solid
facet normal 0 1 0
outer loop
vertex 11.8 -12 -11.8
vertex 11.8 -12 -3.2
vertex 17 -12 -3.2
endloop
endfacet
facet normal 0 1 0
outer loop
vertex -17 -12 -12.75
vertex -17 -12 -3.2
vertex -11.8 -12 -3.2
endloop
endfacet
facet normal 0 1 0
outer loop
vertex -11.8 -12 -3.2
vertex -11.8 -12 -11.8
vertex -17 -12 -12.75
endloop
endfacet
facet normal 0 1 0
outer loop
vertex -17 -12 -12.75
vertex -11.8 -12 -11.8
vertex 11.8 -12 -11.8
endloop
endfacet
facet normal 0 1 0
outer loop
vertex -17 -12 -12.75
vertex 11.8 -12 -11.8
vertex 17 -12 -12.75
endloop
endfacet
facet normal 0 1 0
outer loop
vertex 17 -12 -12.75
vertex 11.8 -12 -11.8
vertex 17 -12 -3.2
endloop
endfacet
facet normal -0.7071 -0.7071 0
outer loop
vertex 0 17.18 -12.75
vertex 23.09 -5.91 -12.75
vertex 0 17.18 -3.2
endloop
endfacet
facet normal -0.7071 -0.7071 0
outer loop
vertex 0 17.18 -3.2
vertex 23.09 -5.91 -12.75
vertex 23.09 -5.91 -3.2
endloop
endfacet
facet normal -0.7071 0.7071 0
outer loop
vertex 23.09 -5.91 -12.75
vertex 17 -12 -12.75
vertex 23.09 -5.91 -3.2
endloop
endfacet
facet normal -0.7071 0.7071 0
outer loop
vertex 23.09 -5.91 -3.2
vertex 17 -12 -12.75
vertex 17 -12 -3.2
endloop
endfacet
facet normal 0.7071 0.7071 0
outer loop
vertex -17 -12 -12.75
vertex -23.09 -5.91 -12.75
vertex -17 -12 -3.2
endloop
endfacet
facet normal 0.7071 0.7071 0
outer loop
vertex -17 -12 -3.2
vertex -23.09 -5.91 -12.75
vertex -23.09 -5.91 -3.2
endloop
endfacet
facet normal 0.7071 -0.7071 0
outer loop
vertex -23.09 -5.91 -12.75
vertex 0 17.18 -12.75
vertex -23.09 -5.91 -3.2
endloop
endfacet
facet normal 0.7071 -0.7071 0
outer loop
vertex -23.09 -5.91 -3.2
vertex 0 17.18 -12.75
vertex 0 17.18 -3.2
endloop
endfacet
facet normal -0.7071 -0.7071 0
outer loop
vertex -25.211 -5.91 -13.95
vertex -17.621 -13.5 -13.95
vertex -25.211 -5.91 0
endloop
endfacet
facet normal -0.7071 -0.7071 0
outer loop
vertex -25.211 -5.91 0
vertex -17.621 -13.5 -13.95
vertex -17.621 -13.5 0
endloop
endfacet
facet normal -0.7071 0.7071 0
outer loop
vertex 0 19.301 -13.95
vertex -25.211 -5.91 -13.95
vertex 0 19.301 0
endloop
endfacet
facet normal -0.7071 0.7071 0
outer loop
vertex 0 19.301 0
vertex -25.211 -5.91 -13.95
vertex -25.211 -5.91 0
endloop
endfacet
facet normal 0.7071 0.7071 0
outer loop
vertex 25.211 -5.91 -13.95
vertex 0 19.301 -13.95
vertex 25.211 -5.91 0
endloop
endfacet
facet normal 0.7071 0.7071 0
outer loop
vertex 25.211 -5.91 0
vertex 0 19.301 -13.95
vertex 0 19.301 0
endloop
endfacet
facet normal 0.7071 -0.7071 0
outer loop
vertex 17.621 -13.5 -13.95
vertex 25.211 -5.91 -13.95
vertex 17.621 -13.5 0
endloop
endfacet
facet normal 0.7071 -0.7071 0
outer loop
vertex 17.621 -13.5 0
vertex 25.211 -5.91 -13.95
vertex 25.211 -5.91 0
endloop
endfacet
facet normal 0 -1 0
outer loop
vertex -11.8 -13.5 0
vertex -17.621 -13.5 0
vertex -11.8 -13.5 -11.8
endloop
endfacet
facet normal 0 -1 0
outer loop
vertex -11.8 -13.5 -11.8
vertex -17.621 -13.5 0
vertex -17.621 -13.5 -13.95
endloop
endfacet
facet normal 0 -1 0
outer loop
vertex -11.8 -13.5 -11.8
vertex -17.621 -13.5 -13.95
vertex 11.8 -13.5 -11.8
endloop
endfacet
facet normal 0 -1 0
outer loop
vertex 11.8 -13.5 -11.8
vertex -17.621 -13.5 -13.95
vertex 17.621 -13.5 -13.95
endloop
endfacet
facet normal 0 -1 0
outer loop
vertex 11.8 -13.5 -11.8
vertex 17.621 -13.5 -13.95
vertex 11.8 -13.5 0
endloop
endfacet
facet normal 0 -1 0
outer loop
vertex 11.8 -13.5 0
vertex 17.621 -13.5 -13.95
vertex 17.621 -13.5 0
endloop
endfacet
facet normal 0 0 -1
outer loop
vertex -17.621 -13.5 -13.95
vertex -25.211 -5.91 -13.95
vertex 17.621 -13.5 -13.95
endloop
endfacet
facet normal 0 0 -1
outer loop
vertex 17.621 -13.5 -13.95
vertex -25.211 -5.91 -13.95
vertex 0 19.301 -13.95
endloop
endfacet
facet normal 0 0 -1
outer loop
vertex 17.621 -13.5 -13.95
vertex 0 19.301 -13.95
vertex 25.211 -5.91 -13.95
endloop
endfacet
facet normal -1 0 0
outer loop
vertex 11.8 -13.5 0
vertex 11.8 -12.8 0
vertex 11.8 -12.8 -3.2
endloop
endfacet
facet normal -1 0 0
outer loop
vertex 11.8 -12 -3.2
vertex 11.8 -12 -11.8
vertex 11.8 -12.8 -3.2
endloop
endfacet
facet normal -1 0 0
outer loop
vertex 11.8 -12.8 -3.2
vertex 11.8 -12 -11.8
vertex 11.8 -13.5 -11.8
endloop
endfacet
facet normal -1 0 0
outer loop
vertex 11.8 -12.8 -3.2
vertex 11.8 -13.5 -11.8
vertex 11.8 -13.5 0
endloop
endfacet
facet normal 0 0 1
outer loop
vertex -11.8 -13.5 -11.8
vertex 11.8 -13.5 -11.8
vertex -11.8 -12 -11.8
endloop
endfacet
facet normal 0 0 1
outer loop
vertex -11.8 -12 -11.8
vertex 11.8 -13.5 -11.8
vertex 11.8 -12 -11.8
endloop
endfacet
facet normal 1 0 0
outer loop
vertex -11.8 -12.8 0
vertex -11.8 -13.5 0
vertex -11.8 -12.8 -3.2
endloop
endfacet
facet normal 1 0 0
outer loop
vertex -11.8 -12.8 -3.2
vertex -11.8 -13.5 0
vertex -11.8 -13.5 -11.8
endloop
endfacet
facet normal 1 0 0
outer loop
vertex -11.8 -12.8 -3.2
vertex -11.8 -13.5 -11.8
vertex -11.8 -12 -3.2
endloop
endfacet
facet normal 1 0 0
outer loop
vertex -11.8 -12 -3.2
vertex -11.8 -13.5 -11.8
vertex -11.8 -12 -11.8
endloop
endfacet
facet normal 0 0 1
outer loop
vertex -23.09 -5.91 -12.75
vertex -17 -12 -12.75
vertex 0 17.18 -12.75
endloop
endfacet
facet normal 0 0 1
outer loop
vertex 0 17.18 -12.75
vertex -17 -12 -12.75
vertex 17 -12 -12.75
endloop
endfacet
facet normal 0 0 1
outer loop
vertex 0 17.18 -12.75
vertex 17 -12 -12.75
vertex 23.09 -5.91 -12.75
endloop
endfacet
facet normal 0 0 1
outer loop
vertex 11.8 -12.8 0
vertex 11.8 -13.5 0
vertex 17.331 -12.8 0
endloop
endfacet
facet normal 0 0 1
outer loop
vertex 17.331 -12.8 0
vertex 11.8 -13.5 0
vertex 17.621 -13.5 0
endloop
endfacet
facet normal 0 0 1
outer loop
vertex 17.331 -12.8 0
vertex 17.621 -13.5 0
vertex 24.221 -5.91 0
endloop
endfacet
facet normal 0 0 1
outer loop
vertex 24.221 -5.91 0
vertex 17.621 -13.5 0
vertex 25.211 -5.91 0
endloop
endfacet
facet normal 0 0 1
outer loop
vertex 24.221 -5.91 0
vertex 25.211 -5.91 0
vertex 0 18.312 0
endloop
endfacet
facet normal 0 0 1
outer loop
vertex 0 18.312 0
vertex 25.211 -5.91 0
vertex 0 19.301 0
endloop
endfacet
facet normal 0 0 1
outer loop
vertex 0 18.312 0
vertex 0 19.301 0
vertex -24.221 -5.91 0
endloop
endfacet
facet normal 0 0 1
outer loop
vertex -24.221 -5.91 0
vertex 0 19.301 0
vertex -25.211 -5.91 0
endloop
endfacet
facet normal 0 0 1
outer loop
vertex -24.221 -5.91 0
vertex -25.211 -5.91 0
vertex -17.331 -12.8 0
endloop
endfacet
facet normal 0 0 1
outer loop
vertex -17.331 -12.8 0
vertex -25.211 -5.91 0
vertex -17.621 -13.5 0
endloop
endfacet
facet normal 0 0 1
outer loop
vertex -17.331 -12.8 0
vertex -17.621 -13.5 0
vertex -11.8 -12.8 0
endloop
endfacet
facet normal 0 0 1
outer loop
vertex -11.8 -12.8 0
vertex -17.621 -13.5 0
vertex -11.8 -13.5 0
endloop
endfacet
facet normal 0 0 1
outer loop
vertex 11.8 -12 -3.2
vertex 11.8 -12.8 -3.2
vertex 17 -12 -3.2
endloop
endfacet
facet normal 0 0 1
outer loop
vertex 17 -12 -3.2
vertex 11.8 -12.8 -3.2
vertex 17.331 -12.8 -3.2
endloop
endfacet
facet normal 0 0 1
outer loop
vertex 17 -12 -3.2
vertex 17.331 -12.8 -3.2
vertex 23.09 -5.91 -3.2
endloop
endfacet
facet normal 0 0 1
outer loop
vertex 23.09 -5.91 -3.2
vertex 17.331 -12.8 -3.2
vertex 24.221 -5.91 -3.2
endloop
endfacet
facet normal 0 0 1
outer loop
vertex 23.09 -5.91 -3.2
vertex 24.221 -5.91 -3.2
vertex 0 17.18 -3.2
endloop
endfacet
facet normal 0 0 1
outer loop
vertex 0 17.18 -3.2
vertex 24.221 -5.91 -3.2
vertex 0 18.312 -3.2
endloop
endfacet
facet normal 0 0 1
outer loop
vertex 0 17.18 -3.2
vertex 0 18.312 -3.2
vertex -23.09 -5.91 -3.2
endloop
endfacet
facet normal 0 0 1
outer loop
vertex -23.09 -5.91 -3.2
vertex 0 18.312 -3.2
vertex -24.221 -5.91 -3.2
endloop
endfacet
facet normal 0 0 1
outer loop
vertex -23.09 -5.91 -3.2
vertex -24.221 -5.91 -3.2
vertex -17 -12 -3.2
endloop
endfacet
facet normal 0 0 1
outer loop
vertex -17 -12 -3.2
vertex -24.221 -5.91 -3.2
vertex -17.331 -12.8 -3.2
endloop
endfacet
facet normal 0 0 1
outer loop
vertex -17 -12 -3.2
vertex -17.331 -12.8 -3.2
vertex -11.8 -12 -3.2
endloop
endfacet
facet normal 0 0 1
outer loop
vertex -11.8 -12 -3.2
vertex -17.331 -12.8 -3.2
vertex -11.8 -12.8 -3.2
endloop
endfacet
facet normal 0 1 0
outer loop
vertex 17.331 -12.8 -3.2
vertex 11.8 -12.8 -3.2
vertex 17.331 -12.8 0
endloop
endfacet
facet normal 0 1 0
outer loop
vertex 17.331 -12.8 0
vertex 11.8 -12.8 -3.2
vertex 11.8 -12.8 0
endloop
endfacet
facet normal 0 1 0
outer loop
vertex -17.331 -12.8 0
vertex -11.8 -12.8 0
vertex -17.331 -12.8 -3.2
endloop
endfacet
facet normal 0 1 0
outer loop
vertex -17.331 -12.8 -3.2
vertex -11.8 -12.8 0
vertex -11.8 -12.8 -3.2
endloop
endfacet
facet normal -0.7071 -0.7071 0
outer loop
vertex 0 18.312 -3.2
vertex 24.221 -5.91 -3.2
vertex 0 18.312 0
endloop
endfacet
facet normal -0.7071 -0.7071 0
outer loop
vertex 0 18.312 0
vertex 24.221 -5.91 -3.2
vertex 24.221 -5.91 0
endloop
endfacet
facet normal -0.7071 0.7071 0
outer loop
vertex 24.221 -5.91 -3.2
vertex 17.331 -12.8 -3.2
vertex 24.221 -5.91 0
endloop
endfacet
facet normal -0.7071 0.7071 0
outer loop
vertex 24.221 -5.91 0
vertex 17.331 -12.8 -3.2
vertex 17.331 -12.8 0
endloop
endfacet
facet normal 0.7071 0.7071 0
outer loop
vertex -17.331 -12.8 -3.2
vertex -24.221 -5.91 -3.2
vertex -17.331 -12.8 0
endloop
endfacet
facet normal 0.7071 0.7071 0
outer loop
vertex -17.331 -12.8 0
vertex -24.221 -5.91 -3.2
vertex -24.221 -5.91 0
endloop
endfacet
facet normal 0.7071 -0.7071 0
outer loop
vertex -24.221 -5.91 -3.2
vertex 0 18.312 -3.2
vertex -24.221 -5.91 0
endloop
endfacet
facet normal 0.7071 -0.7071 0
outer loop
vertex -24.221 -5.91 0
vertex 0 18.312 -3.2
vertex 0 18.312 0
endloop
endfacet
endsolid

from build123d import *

# Parameters (mm, degrees)
EXTRUDE_1_DEPTH          = 12.75
EXTRUDE_1_DEPTH_BACK     = 12.75
EXTRUDE_1_2_DEPTH        = 1.2
EXTRUDE_2_DEPTH          = 1.2
SKETCH_4_W               = 23.6
SKETCH_4_H               = 23.6
CUT_EXTRUDE_1_DEPTH      = 1.5
CUT_EXTRUDE_2_DEPTH      = 35.680906203
CUT_EXTRUDE_2_DEPTH_BACK = 35.680906203
SKETCH_5_W               = 13.95
SKETCH_5_H               = 32.801494515
CUT_EXTRUDE_3_DEPTH      = 3.2


with BuildPart() as part:
    # Эскиз1 → Extrude 1 (new, two sides: drawn at the far end of the back side and taken through both)
    with BuildSketch(Plane.XY.offset(-EXTRUDE_1_DEPTH_BACK)):
        Polygon((-17.621320344, -13.5), (17.621320344, -13.5), (25.211407429, -5.909912914), (0, 19.301494515), (-25.211407429, -5.909912914), align=None)
        Polygon((-17, -12), (17, -12), (23.090087086, -5.909912914), (0, 17.180174171), (-23.090087086, -5.909912914), align=None, mode=Mode.SUBTRACT)
    extrude(amount=EXTRUDE_1_DEPTH + EXTRUDE_1_DEPTH_BACK)

    # Эскиз2 → Extrude 1 2 (add)
    with BuildSketch(Plane.XY.offset(12.75)):
        Polygon((25.211407429, -5.909912914), (0, 19.301494515), (-25.211407429, -5.909912914), (-17.621320344, -13.5), (17.621320344, -13.5), align=None)
    extrude(amount=EXTRUDE_1_2_DEPTH)

    # Эскиз3 → Бобышка-Вытянуть2 (add)
    with BuildSketch(Plane(origin=(0, 0, -12.75), x_dir=(-1, 0, 0), z_dir=(0, 0, -1))):
        Polygon((0, 19.301494515), (25.211407429, -5.909912914), (17.621320344, -13.5), (-17.621320344, -13.5), (-25.211407429, -5.909912914), align=None)
    extrude(amount=EXTRUDE_2_DEPTH)

    # Эскиз4 → Вырез-Вытянуть1 (cut)
    with BuildSketch(Plane.XZ.offset(13.5)):
        Rectangle(SKETCH_4_W, SKETCH_4_H)
    extrude(amount=-CUT_EXTRUDE_1_DEPTH, mode=Mode.SUBTRACT)

    # Эскиз5 → Вырез-Вытянуть2 (cut, two sides: drawn at the far end of the back side and taken through both)
    with BuildSketch(Plane(origin=(0, 0, 0), x_dir=(0, 0, -1), z_dir=(1, 0, 0)).offset(-CUT_EXTRUDE_2_DEPTH_BACK)):
        with Locations((-6.975, 2.900747258)):
            Rectangle(SKETCH_5_W, SKETCH_5_H)
    extrude(amount=CUT_EXTRUDE_2_DEPTH + CUT_EXTRUDE_2_DEPTH_BACK, mode=Mode.SUBTRACT)

    # Эскиз6 → Вырез-Вытянуть3 (cut)
    with BuildSketch(Plane.XY):
        Polygon((-17.33137085, -12.8), (17.33137085, -12.8), (24.221457935, -5.909912914), (0, 18.311545021), (-24.221457935, -5.909912914), align=None)
    extrude(amount=-CUT_EXTRUDE_3_DEPTH, mode=Mode.SUBTRACT)


solid = part.part
